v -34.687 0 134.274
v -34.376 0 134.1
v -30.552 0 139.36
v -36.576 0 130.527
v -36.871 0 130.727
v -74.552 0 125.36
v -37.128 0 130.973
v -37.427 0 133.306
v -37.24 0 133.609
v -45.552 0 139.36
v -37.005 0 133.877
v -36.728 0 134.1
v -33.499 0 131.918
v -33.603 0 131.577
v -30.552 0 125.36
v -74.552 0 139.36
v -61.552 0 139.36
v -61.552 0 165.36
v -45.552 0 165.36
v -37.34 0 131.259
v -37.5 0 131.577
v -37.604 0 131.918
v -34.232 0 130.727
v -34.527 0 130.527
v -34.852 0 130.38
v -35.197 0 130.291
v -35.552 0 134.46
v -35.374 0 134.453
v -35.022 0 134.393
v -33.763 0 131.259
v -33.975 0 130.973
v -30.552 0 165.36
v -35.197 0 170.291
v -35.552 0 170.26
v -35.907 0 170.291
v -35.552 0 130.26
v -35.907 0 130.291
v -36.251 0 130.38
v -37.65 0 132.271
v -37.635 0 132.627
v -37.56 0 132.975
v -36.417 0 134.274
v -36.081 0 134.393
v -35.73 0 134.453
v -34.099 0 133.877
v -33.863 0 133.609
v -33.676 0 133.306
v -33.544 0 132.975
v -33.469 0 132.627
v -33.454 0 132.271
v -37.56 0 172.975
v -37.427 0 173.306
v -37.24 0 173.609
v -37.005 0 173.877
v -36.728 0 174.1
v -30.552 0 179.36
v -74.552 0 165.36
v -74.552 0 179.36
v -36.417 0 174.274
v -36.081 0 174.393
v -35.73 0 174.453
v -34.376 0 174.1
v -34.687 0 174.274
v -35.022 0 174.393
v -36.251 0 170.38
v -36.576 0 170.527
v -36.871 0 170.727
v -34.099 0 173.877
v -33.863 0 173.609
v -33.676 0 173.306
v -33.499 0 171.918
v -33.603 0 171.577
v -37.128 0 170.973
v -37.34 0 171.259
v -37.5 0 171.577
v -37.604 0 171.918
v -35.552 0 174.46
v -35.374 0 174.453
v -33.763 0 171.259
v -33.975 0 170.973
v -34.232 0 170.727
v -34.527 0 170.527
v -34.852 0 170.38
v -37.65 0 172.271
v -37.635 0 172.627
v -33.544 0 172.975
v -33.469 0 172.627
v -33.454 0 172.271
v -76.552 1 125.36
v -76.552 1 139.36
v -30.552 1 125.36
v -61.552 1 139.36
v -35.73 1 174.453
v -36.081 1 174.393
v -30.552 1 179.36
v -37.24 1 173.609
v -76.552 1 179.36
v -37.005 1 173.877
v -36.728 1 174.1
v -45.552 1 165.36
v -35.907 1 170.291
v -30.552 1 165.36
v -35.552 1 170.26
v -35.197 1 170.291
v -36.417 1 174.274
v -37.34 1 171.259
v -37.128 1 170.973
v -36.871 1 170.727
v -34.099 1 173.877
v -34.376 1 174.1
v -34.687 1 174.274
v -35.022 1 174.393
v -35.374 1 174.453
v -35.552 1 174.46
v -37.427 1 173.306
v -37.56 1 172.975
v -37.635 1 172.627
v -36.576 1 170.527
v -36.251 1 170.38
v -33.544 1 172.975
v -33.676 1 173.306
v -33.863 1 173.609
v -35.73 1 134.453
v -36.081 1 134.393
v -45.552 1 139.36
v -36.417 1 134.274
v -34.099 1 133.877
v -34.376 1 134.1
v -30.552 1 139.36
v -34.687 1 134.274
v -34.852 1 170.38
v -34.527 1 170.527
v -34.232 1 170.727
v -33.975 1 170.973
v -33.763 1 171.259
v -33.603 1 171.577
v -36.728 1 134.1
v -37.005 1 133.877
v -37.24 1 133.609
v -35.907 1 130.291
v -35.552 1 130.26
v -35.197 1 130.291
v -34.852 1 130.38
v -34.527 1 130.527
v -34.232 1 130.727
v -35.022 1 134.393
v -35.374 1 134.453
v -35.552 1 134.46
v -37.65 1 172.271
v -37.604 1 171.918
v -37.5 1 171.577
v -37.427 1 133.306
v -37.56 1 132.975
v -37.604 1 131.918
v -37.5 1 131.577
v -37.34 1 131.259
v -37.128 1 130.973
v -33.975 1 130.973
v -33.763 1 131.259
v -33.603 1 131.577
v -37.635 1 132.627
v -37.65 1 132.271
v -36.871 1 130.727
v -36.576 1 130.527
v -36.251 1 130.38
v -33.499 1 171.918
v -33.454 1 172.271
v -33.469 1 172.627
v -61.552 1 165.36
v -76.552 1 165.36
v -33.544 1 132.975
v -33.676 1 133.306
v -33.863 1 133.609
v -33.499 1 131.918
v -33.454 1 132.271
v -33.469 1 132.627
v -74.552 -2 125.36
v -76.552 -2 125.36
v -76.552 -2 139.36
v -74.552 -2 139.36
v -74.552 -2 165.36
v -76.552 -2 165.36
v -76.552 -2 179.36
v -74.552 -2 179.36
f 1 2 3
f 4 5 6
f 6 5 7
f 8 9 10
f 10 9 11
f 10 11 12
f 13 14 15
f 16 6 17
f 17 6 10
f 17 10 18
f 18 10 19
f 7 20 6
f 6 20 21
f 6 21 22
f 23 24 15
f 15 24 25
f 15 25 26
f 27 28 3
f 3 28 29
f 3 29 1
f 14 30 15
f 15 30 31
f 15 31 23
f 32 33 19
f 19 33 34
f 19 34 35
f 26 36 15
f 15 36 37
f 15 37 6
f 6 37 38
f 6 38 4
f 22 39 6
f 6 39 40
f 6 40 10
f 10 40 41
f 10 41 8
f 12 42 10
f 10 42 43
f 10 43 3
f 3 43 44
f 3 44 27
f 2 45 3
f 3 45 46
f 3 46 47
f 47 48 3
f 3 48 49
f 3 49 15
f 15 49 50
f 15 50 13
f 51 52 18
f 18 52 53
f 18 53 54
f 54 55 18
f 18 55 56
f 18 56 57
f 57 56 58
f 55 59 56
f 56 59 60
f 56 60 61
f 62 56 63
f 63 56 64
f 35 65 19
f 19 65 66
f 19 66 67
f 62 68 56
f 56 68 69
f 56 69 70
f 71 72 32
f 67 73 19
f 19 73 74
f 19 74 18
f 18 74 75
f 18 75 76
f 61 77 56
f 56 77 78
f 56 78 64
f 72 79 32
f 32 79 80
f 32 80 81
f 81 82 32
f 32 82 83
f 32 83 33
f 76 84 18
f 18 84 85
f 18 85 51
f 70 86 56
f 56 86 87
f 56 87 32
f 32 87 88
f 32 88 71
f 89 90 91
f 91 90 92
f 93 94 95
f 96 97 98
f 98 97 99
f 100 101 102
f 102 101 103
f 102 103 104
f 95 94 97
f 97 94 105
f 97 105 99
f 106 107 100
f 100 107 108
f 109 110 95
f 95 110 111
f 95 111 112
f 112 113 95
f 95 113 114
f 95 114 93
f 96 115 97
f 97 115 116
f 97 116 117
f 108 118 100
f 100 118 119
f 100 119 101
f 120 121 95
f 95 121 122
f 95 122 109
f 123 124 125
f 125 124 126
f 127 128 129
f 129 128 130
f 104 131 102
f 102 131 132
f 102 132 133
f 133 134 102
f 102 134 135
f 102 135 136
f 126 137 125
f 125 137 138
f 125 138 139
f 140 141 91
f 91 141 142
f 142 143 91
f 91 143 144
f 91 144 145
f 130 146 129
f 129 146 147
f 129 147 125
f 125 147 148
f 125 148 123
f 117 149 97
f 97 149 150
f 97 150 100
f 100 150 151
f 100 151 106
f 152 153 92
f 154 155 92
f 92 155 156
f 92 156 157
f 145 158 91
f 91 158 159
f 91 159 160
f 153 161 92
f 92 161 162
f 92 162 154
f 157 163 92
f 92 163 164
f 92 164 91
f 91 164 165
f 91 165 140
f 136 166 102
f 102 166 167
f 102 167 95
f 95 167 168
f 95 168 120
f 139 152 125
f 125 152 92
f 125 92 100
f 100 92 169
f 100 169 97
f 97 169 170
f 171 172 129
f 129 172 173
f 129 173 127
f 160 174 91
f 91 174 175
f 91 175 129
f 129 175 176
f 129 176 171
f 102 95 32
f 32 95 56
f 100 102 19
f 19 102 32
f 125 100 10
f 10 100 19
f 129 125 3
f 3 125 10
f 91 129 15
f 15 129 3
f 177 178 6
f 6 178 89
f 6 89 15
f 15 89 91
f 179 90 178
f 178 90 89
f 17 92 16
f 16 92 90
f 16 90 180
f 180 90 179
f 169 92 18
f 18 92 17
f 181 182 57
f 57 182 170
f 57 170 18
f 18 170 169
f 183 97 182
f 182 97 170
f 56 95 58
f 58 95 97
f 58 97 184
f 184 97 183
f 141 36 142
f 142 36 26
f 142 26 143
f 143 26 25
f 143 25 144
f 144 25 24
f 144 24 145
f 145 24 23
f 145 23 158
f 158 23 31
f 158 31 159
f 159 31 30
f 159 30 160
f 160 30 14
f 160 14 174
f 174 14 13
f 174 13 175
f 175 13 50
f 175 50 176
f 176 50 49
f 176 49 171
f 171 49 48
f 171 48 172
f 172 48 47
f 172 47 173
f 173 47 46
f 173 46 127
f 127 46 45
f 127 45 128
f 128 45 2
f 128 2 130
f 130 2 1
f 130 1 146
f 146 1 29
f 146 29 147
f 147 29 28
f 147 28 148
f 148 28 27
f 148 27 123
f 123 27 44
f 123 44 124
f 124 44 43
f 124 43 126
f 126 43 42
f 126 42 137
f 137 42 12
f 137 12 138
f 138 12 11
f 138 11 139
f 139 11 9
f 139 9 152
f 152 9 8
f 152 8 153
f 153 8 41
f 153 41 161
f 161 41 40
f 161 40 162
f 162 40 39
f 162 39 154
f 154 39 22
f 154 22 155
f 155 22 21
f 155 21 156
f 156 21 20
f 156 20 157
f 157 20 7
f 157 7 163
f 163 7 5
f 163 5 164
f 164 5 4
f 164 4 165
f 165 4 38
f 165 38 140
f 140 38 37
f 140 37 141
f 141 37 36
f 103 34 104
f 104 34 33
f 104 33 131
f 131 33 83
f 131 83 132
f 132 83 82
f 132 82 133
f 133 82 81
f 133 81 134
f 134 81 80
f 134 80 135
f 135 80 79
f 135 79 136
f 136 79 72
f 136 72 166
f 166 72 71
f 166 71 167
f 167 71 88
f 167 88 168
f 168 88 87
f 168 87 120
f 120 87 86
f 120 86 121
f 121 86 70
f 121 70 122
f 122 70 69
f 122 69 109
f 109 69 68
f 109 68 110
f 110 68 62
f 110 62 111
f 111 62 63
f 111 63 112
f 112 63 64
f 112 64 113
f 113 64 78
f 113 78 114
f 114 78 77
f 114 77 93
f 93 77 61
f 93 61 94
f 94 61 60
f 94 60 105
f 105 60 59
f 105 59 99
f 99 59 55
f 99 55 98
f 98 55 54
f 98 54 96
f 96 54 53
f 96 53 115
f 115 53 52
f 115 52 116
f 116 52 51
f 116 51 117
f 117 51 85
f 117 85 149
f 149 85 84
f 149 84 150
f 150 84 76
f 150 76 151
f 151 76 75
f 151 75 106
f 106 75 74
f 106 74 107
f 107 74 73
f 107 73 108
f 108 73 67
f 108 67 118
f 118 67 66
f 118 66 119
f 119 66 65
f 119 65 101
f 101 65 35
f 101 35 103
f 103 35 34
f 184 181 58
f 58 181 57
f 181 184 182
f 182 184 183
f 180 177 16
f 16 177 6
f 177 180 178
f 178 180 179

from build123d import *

# Parameters (mm, degrees)
SKETCH1_R           = 2.1
BOSS_EXTRUDE1_DEPTH = 1
SKETCH2_W           = 2
SKETCH2_H           = 14
BOSS_EXTRUDE2_DEPTH = 2


with BuildPart() as part:
    # Sketch1 → Boss-Extrude1 (new body)
    with BuildSketch(Plane(origin=(0, 0, 0), x_dir=(1, 0, 0), z_dir=(0, 1, 0))):
        Polygon((-30.551614771, -125.360414745), (-76.551614771, -125.360414745), (-76.551614771, -139.360414745), (-61.551614771, -139.360414745), (-61.551614771, -165.360414745), (-76.551614771, -165.360414745), (-76.551614771, -179.360414745), (-30.551614771, -179.360414745), (-30.551614771, -165.360414745), (-45.551614771, -165.360414745), (-45.551614771, -139.360414745), (-30.551614771, -139.360414745), align=None)
        with Locations((-35.551614771, -132.360414745)):
            Circle(SKETCH1_R, mode=Mode.SUBTRACT)
        with Locations((-35.551614771, -172.360414745)):
            Circle(SKETCH1_R, mode=Mode.SUBTRACT)
    extrude(amount=BOSS_EXTRUDE1_DEPTH)

    # Sketch2 → Boss-Extrude2 (add)
    with BuildSketch(Plane(origin=(0, 0, 0), x_dir=(-1, 0, 0), z_dir=(0, -1, 0))):
        with Locations((75.551614771, -172.360414745)):
            Rectangle(SKETCH2_W, SKETCH2_H)
        with Locations((75.551614771, -132.360414745)):
            Rectangle(SKETCH2_W, SKETCH2_H)
    extrude(amount=BOSS_EXTRUDE2_DEPTH)


solid = part.part
